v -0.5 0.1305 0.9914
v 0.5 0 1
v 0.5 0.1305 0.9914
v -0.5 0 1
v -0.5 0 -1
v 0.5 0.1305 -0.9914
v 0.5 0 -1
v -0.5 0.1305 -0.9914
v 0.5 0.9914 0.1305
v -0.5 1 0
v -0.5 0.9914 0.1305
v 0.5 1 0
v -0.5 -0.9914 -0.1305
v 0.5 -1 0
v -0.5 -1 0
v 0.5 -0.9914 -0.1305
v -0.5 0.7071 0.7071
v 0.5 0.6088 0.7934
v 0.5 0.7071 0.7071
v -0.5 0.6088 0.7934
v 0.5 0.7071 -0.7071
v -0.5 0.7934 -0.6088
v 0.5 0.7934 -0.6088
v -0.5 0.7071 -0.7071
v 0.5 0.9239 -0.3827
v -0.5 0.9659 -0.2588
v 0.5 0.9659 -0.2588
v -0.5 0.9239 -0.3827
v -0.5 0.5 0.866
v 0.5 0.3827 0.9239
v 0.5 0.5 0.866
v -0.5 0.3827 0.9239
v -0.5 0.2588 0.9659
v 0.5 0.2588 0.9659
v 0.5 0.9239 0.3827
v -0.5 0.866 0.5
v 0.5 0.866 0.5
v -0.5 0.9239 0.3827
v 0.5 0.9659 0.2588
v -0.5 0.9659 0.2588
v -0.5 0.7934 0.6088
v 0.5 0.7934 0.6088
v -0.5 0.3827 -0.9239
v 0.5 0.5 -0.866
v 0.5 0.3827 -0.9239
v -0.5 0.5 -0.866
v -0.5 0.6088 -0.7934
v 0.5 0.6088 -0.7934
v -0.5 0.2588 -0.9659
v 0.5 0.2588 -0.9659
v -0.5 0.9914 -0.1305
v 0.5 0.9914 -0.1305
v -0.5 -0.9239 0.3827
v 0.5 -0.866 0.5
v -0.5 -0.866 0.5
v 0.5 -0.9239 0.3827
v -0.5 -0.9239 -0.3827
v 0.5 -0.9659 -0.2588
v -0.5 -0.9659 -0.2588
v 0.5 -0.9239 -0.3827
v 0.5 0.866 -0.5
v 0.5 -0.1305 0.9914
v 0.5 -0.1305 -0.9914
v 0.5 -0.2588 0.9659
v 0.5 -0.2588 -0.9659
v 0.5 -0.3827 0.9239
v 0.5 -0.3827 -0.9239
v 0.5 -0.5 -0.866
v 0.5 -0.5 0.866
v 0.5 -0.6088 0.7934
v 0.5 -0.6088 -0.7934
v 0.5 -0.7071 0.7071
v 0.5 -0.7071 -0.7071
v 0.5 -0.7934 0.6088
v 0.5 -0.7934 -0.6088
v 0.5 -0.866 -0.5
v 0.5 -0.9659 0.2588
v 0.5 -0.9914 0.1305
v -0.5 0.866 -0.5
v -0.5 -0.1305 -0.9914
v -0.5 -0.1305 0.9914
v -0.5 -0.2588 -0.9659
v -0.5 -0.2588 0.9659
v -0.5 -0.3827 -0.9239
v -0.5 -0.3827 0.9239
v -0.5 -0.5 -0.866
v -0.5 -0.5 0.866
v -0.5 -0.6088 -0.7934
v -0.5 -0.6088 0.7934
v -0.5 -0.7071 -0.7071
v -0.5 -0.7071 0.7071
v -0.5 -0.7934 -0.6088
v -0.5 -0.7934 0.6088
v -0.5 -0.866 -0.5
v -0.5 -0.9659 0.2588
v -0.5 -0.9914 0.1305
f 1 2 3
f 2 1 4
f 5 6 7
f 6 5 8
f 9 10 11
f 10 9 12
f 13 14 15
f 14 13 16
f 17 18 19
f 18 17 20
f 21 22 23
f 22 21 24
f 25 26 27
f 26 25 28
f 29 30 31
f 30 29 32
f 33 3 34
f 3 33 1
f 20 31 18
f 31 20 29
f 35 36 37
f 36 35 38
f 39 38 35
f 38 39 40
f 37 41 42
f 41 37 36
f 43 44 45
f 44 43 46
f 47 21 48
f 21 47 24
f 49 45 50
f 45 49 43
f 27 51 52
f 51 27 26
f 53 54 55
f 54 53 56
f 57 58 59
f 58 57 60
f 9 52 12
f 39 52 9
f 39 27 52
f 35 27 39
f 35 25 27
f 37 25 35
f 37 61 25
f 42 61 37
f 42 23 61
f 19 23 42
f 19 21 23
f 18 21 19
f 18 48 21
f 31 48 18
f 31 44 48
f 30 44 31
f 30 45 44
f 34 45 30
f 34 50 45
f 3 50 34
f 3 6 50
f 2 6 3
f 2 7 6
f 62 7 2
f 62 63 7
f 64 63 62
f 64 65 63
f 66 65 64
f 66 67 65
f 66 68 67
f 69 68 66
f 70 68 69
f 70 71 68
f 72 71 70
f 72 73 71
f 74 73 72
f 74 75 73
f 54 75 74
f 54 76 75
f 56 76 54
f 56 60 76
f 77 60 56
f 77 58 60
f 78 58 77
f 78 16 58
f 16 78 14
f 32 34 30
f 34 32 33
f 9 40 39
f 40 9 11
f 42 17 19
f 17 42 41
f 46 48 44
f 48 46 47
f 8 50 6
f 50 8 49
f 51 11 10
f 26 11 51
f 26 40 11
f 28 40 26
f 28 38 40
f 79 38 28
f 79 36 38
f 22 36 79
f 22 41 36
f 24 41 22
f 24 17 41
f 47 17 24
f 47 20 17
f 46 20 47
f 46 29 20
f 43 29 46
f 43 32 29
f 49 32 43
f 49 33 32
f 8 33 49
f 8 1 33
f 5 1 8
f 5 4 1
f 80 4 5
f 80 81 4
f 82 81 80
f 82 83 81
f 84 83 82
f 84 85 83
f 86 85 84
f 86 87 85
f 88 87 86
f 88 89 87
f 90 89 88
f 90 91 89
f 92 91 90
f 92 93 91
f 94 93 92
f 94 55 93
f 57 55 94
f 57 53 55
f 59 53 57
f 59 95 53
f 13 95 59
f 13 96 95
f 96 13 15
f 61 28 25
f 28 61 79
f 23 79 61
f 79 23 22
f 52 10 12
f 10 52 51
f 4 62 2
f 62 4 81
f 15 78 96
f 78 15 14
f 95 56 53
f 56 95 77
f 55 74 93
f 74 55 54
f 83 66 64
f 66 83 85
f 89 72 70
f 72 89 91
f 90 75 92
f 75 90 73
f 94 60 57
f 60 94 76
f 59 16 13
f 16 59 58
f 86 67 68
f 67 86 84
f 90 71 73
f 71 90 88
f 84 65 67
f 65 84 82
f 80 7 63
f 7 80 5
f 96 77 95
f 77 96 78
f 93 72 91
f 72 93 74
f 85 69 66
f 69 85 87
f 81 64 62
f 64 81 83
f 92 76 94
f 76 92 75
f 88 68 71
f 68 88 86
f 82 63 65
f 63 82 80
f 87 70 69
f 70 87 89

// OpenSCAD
// file: ../../lib/nutsnbolts/data-access.scad
// Norm Nuts and Bolts - a OpenSCAD library
// Copyright (C) 2012  Johannes Kneer

// This program is free software: you can redistribute it and/or modify
// it under the terms of the GNU General Public License as published by
// the Free Software Foundation, either version 3 of the License, or
// (at your option) any later version.

// This program is distributed in the hope that it will be useful,
// but WITHOUT ANY WARRANTY; without even the implied warranty of
// MERCHANTABILITY or FITNESS FOR A PARTICULAR PURPOSE.  See the
// GNU General Public License for more details.

// You should have received a copy of the GNU General Public License
// along with this program.  If not, see <http://www.gnu.org/licenses/>.


// DATABASE ACCESS FUNCTIONS AND CONSTANTS



// == CONSTANTS ==

// screw table access keys
_NB_S_DESC            = 0;
_NB_S_FAMKEY			    = 1;
_NB_S_LENGTH          = 2;
_NB_S_NOTHREAD_LENGTH = 3;

_NB_F_DESC			      = 0;
_NB_F_OUTER_DIA       = 1;
_NB_F_INNER_DIA       = 2;
_NB_F_LEAD            = 3;
_NB_F_KEY             = 4;
_NB_F_KEY_DEPTH       = 5;
_NB_F_HEAD_HEIGHT     = 6;
_NB_F_HEAD_DIA        = 7;
_NB_F_NUT_KEY         = 8;
_NB_F_NUT_HEIGHT      = 9;
_NB_F_PITCH_FINE      = 10;
_NB_F_PITCH_MEDIUM    = 11;
_NB_F_PITCH_COARSE    = 12;


// == FUNCTIONS ==

// _get_screw("descriptor")   with descriptor = M8x25
//   find the line for a general object in the data matrix

function _get_screw(n) = data_screw[search([n], data_screw)[0]];
function _get_screw_fam(n) = data_screw_fam[search([_get_screw(n)[_NB_S_FAMKEY]], data_screw_fam)[0]];

function _get_fam(n) = data_screw_fam[search([n], data_screw_fam)[0]];


// _get_XXXXX("descriptor") functions
// find a single property in the database

function _get_desc(n)        = _get_screw(n)[_NB_S_DESC];
function _get_famkey(n)         = _get_screw(n)[_NB_S_FAMKEY];
function _get_length(n)      = _get_screw(n)[_NB_S_LENGTH];
function _get_nt_length(n)   = _get_screw(n)[_NB_S_NOTHREAD_LENGTH];

function _get_outer_dia(n)   = _get_screw_fam(n)[_NB_F_OUTER_DIA];
function _get_inner_dia(n)   = _get_screw_fam(n)[_NB_F_INNER_DIA];
function _get_lead(n)        = _get_screw_fam(n)[_NB_F_LEAD];
function _get_head_height(n) = _get_screw_fam(n)[_NB_F_HEAD_HEIGHT];
function _get_head_dia(n)    = _get_screw_fam(n)[_NB_F_HEAD_DIA];
function _get_nut_key(n)     = _get_screw_fam(n)[_NB_F_NUT_KEY];
function _get_nut_height(n)  = _get_screw_fam(n)[_NB_F_NUT_HEIGHT];
function _get_fine_pitch(n)  = _get_screw_fam(n)[_NB_F_PITCH_FINE];
function _get_medium_pitch(n)  = _get_screw_fam(n)[_NB_F_PITCH_MEDIUM];
function _get_coarse_pitch(n)  = _get_screw_fam(n)[_NB_F_PITCH_COARSE];
// main file
/**********************************************************************************************************************
 **
 ** parts/vitamins/screw_M5x55.scad
 **
 ** This file renders a screw of the dimensions specified by the file name.
 **
 **********************************************************************************************************************/

include <../../lib/nutsnbolts/cyl_head_bolt.scad>;

$fn = 48;
rotate([0, -90, 0])
	screw("M5x55"); 
